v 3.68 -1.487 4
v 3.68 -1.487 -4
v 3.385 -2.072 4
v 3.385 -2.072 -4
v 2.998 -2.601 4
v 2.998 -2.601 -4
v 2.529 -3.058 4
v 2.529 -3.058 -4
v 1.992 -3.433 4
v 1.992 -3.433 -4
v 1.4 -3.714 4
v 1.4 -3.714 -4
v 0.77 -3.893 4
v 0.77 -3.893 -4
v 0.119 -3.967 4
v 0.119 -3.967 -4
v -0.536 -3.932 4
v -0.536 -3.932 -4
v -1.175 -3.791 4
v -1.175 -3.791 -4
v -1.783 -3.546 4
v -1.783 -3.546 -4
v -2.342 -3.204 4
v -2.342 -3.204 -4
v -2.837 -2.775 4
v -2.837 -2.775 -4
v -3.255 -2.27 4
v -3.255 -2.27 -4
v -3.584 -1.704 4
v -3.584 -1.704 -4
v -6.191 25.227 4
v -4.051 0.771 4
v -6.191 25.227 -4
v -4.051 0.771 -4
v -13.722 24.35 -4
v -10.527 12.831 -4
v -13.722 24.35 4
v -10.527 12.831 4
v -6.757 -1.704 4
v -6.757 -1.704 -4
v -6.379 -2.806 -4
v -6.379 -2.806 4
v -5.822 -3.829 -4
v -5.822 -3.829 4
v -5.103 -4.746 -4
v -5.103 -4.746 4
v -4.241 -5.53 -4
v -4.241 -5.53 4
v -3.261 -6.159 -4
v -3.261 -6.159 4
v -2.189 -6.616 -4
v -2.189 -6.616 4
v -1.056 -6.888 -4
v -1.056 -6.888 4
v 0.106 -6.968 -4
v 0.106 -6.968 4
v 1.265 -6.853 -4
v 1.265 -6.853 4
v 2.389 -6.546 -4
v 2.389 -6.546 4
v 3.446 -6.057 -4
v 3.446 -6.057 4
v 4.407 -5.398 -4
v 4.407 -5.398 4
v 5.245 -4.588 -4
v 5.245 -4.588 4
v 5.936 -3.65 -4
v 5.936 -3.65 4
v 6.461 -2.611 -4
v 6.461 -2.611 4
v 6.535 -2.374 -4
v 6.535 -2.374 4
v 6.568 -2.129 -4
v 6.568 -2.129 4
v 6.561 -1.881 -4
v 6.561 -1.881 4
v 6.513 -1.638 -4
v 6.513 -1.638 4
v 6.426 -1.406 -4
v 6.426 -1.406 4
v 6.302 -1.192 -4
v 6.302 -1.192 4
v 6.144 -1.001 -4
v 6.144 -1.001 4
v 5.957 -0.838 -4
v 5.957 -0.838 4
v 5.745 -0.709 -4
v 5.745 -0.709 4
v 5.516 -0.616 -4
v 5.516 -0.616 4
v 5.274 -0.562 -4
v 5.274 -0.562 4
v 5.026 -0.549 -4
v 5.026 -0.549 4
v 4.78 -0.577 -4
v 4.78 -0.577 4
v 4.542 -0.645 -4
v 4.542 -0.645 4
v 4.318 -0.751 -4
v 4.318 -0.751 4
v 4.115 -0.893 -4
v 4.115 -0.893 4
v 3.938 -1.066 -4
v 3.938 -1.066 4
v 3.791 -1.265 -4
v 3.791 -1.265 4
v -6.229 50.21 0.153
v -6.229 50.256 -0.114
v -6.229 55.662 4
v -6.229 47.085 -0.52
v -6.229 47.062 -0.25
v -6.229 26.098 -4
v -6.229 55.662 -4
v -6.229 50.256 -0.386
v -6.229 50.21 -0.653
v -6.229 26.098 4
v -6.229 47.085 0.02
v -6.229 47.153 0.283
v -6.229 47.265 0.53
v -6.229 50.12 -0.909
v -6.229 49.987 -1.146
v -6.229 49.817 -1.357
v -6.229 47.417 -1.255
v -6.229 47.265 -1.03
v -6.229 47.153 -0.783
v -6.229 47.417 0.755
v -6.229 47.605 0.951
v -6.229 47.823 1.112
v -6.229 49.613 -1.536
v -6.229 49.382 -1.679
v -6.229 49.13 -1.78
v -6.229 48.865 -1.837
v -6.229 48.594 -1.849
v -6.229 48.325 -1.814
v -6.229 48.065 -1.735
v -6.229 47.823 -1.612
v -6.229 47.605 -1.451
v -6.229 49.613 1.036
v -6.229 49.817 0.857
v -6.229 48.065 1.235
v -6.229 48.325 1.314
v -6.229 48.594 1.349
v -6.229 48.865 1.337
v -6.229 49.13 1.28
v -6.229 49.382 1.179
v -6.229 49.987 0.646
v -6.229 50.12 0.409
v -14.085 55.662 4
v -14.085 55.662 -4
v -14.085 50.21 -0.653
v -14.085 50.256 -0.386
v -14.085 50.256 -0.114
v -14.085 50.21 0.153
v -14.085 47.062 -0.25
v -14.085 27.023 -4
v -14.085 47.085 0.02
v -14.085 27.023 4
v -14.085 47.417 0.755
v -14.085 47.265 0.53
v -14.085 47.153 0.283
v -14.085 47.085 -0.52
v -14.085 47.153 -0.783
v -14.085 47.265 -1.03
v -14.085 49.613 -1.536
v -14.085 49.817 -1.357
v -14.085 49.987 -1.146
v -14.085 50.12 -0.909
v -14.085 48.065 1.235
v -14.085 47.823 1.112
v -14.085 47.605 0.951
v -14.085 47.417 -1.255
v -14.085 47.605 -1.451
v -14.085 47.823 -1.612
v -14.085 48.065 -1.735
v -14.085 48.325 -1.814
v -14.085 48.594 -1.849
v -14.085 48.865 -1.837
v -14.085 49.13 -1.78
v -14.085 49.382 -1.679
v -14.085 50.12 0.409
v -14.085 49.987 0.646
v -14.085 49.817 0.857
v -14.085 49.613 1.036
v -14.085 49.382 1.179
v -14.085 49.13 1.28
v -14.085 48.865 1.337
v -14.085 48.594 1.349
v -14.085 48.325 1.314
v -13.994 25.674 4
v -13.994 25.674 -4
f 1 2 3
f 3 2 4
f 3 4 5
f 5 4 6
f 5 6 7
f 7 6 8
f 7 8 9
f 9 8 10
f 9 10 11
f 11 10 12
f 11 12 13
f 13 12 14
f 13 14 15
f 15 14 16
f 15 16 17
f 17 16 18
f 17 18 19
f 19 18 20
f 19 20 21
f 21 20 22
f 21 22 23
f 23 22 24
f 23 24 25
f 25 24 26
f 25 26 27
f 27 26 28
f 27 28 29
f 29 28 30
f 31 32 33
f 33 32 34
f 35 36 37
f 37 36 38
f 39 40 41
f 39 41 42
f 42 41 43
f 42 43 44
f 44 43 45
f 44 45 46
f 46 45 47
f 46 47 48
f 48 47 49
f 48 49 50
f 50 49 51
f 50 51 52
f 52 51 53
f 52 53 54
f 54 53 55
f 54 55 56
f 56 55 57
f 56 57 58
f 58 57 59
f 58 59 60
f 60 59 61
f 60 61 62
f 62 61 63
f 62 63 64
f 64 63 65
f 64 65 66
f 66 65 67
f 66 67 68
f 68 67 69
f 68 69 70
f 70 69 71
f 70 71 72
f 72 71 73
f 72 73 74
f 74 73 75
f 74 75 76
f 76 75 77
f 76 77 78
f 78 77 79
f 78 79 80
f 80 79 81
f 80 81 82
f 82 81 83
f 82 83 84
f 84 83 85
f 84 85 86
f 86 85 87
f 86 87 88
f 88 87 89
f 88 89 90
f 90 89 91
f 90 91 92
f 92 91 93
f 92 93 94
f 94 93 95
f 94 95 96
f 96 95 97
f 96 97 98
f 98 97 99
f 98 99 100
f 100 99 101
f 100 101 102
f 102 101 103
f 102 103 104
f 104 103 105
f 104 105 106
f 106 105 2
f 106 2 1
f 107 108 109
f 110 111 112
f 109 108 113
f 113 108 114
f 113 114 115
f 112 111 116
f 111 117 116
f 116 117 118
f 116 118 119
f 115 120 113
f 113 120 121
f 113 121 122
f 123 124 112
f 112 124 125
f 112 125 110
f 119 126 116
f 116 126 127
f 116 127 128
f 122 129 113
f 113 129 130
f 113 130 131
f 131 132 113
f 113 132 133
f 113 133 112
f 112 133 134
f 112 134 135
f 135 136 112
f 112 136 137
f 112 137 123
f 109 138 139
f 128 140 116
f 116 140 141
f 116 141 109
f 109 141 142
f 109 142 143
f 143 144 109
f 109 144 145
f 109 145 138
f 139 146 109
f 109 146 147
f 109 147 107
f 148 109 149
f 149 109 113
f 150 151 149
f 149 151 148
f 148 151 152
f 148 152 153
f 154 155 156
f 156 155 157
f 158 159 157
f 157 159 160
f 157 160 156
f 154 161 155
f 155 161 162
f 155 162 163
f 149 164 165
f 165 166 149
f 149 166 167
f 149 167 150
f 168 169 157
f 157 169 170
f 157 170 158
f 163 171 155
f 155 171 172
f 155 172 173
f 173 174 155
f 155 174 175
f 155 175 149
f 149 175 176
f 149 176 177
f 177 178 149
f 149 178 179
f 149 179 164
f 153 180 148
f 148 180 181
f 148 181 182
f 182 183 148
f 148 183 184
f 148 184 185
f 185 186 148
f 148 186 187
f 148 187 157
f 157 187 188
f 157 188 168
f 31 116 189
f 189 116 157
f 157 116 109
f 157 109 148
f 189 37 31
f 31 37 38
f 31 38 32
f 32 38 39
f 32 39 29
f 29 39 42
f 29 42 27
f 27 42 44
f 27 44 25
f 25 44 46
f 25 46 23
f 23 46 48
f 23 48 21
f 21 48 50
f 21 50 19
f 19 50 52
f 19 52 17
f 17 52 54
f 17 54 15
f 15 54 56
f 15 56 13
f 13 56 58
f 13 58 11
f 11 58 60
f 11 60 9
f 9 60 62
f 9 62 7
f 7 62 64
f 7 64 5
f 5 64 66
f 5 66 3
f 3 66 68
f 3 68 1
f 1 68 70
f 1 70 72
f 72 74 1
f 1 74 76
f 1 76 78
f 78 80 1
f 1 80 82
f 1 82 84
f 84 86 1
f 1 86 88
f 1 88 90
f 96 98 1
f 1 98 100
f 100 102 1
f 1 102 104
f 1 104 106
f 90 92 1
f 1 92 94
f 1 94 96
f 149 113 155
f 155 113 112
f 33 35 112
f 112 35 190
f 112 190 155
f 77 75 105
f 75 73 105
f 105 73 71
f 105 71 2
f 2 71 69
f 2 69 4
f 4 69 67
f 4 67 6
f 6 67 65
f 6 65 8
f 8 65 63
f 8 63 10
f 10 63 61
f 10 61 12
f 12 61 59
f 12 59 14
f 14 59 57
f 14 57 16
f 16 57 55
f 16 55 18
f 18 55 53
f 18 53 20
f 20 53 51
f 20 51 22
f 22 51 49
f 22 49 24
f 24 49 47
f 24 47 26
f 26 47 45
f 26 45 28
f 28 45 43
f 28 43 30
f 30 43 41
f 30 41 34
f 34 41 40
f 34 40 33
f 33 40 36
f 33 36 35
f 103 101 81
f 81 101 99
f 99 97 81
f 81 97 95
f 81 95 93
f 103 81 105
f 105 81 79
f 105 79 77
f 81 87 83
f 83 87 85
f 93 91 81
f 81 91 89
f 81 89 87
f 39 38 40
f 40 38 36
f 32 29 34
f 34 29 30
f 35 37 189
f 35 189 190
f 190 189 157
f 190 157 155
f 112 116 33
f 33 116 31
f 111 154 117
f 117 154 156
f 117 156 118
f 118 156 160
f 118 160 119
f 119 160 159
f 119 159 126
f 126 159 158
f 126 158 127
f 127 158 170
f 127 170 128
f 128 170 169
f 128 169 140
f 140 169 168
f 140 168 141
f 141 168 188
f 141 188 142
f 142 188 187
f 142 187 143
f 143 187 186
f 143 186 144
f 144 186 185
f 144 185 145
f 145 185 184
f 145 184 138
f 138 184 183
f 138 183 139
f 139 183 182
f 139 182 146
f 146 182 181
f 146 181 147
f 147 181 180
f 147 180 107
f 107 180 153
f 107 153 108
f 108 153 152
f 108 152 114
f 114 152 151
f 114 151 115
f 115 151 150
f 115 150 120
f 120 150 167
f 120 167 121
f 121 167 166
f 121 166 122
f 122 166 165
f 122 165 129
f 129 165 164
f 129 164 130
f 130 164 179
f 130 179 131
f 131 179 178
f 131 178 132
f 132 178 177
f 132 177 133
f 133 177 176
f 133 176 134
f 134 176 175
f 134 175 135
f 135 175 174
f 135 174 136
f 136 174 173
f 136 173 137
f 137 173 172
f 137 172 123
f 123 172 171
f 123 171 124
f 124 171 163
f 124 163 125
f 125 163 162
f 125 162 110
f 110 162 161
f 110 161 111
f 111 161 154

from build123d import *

# Parameters (mm, degrees)
SALIENTE_EXTRUIR2_DEPTH = 4
SALIENTE_EXTRUIR3_DEPTH = 4
REDONDEO1_R             = 10
REDONDEO2_R             = 10
CROQUIS4_R              = 1.6
CORTAR_EXTRUIR1_DEPTH   = 21.5


with BuildPart() as part:
    # Croquis2 → Saliente-Extruir2 (new, symmetric)
    with BuildSketch(Plane.XY):
        with BuildLine():
            ThreePointArc((3.679760923, -1.486719918), (-0.5866186, -3.925156708), (-3.953647708, -0.345899354))
            Line((-3.953647708, -0.345899354), (-6.229010011, 25.661610777))
            Line((-6.229010011, 25.661610777), (-6.229010011, 55.661610777))
            Line((-6.229010011, 55.661610777), (-14.085344509, 55.661610777))
            Line((-14.085344509, 55.661610777), (-14.085344509, 25.661610777))
            Line((-14.085344509, 25.661610777), (-6.96875, 0))
            ThreePointArc((-6.96875, 0), (-1.329700187, -6.840714435), (6.461312487, -2.610539698))
            ThreePointArc((6.461312487, -2.610539698), (5.632446595, -0.657854026), (3.679760923, -1.486719918))
        make_face()
    extrude(amount=SALIENTE_EXTRUIR2_DEPTH, both=True)

    # Croquis3 → Saliente-Extruir3 (add, symmetric)
    with BuildSketch(Plane.XY):
        Polygon((-10.527047254, 12.830805389), (-6.757235143, -1.70389254), (-3.584372578, -1.70389254), (-6.327047254, 12.830805389), align=None)
    extrude(amount=SALIENTE_EXTRUIR3_DEPTH, both=True)

    # Redondeo1
    redondeo1_edges = [part.edges().sort_by_distance(p)[0] for p in [
        (-14.085344509, 25.661610777, 0),
    ]]
    fillet(redondeo1_edges, radius=REDONDEO1_R)

    # Redondeo2
    # the kernel refuses this fillet: 10 mm, written as the material it adds along each edge
    with BuildSketch(Plane(origin=(-6.229010011, 25.661610777, -4), x_dir=(0, 1, 0), z_dir=(0, 0, 1))) as redondeo2_piece_1:
        with BuildLine():
            CenterArc((REDONDEO2_R * 0.0436609429085, -REDONDEO2_R), REDONDEO2_R, 90, 5)
            Line((-REDONDEO2_R * 0.0434947998391, -REDONDEO2_R * 0.00380530190825), (0, 0))
            Line((0, 0), (REDONDEO2_R * 0.0436609429085, 0))
        make_face()
    extrude(amount=8)

    # Croquis4 → Cortar-Extruir1 (cut)
    with BuildSketch(Plane.ZY.offset(14.085344509)):
        with Locations(Location((-0.25, 48.661610777, 0), (0, 0, 270))):
            Circle(CROQUIS4_R)
    extrude(amount=-CORTAR_EXTRUIR1_DEPTH, mode=Mode.SUBTRACT)


solid = part.part
